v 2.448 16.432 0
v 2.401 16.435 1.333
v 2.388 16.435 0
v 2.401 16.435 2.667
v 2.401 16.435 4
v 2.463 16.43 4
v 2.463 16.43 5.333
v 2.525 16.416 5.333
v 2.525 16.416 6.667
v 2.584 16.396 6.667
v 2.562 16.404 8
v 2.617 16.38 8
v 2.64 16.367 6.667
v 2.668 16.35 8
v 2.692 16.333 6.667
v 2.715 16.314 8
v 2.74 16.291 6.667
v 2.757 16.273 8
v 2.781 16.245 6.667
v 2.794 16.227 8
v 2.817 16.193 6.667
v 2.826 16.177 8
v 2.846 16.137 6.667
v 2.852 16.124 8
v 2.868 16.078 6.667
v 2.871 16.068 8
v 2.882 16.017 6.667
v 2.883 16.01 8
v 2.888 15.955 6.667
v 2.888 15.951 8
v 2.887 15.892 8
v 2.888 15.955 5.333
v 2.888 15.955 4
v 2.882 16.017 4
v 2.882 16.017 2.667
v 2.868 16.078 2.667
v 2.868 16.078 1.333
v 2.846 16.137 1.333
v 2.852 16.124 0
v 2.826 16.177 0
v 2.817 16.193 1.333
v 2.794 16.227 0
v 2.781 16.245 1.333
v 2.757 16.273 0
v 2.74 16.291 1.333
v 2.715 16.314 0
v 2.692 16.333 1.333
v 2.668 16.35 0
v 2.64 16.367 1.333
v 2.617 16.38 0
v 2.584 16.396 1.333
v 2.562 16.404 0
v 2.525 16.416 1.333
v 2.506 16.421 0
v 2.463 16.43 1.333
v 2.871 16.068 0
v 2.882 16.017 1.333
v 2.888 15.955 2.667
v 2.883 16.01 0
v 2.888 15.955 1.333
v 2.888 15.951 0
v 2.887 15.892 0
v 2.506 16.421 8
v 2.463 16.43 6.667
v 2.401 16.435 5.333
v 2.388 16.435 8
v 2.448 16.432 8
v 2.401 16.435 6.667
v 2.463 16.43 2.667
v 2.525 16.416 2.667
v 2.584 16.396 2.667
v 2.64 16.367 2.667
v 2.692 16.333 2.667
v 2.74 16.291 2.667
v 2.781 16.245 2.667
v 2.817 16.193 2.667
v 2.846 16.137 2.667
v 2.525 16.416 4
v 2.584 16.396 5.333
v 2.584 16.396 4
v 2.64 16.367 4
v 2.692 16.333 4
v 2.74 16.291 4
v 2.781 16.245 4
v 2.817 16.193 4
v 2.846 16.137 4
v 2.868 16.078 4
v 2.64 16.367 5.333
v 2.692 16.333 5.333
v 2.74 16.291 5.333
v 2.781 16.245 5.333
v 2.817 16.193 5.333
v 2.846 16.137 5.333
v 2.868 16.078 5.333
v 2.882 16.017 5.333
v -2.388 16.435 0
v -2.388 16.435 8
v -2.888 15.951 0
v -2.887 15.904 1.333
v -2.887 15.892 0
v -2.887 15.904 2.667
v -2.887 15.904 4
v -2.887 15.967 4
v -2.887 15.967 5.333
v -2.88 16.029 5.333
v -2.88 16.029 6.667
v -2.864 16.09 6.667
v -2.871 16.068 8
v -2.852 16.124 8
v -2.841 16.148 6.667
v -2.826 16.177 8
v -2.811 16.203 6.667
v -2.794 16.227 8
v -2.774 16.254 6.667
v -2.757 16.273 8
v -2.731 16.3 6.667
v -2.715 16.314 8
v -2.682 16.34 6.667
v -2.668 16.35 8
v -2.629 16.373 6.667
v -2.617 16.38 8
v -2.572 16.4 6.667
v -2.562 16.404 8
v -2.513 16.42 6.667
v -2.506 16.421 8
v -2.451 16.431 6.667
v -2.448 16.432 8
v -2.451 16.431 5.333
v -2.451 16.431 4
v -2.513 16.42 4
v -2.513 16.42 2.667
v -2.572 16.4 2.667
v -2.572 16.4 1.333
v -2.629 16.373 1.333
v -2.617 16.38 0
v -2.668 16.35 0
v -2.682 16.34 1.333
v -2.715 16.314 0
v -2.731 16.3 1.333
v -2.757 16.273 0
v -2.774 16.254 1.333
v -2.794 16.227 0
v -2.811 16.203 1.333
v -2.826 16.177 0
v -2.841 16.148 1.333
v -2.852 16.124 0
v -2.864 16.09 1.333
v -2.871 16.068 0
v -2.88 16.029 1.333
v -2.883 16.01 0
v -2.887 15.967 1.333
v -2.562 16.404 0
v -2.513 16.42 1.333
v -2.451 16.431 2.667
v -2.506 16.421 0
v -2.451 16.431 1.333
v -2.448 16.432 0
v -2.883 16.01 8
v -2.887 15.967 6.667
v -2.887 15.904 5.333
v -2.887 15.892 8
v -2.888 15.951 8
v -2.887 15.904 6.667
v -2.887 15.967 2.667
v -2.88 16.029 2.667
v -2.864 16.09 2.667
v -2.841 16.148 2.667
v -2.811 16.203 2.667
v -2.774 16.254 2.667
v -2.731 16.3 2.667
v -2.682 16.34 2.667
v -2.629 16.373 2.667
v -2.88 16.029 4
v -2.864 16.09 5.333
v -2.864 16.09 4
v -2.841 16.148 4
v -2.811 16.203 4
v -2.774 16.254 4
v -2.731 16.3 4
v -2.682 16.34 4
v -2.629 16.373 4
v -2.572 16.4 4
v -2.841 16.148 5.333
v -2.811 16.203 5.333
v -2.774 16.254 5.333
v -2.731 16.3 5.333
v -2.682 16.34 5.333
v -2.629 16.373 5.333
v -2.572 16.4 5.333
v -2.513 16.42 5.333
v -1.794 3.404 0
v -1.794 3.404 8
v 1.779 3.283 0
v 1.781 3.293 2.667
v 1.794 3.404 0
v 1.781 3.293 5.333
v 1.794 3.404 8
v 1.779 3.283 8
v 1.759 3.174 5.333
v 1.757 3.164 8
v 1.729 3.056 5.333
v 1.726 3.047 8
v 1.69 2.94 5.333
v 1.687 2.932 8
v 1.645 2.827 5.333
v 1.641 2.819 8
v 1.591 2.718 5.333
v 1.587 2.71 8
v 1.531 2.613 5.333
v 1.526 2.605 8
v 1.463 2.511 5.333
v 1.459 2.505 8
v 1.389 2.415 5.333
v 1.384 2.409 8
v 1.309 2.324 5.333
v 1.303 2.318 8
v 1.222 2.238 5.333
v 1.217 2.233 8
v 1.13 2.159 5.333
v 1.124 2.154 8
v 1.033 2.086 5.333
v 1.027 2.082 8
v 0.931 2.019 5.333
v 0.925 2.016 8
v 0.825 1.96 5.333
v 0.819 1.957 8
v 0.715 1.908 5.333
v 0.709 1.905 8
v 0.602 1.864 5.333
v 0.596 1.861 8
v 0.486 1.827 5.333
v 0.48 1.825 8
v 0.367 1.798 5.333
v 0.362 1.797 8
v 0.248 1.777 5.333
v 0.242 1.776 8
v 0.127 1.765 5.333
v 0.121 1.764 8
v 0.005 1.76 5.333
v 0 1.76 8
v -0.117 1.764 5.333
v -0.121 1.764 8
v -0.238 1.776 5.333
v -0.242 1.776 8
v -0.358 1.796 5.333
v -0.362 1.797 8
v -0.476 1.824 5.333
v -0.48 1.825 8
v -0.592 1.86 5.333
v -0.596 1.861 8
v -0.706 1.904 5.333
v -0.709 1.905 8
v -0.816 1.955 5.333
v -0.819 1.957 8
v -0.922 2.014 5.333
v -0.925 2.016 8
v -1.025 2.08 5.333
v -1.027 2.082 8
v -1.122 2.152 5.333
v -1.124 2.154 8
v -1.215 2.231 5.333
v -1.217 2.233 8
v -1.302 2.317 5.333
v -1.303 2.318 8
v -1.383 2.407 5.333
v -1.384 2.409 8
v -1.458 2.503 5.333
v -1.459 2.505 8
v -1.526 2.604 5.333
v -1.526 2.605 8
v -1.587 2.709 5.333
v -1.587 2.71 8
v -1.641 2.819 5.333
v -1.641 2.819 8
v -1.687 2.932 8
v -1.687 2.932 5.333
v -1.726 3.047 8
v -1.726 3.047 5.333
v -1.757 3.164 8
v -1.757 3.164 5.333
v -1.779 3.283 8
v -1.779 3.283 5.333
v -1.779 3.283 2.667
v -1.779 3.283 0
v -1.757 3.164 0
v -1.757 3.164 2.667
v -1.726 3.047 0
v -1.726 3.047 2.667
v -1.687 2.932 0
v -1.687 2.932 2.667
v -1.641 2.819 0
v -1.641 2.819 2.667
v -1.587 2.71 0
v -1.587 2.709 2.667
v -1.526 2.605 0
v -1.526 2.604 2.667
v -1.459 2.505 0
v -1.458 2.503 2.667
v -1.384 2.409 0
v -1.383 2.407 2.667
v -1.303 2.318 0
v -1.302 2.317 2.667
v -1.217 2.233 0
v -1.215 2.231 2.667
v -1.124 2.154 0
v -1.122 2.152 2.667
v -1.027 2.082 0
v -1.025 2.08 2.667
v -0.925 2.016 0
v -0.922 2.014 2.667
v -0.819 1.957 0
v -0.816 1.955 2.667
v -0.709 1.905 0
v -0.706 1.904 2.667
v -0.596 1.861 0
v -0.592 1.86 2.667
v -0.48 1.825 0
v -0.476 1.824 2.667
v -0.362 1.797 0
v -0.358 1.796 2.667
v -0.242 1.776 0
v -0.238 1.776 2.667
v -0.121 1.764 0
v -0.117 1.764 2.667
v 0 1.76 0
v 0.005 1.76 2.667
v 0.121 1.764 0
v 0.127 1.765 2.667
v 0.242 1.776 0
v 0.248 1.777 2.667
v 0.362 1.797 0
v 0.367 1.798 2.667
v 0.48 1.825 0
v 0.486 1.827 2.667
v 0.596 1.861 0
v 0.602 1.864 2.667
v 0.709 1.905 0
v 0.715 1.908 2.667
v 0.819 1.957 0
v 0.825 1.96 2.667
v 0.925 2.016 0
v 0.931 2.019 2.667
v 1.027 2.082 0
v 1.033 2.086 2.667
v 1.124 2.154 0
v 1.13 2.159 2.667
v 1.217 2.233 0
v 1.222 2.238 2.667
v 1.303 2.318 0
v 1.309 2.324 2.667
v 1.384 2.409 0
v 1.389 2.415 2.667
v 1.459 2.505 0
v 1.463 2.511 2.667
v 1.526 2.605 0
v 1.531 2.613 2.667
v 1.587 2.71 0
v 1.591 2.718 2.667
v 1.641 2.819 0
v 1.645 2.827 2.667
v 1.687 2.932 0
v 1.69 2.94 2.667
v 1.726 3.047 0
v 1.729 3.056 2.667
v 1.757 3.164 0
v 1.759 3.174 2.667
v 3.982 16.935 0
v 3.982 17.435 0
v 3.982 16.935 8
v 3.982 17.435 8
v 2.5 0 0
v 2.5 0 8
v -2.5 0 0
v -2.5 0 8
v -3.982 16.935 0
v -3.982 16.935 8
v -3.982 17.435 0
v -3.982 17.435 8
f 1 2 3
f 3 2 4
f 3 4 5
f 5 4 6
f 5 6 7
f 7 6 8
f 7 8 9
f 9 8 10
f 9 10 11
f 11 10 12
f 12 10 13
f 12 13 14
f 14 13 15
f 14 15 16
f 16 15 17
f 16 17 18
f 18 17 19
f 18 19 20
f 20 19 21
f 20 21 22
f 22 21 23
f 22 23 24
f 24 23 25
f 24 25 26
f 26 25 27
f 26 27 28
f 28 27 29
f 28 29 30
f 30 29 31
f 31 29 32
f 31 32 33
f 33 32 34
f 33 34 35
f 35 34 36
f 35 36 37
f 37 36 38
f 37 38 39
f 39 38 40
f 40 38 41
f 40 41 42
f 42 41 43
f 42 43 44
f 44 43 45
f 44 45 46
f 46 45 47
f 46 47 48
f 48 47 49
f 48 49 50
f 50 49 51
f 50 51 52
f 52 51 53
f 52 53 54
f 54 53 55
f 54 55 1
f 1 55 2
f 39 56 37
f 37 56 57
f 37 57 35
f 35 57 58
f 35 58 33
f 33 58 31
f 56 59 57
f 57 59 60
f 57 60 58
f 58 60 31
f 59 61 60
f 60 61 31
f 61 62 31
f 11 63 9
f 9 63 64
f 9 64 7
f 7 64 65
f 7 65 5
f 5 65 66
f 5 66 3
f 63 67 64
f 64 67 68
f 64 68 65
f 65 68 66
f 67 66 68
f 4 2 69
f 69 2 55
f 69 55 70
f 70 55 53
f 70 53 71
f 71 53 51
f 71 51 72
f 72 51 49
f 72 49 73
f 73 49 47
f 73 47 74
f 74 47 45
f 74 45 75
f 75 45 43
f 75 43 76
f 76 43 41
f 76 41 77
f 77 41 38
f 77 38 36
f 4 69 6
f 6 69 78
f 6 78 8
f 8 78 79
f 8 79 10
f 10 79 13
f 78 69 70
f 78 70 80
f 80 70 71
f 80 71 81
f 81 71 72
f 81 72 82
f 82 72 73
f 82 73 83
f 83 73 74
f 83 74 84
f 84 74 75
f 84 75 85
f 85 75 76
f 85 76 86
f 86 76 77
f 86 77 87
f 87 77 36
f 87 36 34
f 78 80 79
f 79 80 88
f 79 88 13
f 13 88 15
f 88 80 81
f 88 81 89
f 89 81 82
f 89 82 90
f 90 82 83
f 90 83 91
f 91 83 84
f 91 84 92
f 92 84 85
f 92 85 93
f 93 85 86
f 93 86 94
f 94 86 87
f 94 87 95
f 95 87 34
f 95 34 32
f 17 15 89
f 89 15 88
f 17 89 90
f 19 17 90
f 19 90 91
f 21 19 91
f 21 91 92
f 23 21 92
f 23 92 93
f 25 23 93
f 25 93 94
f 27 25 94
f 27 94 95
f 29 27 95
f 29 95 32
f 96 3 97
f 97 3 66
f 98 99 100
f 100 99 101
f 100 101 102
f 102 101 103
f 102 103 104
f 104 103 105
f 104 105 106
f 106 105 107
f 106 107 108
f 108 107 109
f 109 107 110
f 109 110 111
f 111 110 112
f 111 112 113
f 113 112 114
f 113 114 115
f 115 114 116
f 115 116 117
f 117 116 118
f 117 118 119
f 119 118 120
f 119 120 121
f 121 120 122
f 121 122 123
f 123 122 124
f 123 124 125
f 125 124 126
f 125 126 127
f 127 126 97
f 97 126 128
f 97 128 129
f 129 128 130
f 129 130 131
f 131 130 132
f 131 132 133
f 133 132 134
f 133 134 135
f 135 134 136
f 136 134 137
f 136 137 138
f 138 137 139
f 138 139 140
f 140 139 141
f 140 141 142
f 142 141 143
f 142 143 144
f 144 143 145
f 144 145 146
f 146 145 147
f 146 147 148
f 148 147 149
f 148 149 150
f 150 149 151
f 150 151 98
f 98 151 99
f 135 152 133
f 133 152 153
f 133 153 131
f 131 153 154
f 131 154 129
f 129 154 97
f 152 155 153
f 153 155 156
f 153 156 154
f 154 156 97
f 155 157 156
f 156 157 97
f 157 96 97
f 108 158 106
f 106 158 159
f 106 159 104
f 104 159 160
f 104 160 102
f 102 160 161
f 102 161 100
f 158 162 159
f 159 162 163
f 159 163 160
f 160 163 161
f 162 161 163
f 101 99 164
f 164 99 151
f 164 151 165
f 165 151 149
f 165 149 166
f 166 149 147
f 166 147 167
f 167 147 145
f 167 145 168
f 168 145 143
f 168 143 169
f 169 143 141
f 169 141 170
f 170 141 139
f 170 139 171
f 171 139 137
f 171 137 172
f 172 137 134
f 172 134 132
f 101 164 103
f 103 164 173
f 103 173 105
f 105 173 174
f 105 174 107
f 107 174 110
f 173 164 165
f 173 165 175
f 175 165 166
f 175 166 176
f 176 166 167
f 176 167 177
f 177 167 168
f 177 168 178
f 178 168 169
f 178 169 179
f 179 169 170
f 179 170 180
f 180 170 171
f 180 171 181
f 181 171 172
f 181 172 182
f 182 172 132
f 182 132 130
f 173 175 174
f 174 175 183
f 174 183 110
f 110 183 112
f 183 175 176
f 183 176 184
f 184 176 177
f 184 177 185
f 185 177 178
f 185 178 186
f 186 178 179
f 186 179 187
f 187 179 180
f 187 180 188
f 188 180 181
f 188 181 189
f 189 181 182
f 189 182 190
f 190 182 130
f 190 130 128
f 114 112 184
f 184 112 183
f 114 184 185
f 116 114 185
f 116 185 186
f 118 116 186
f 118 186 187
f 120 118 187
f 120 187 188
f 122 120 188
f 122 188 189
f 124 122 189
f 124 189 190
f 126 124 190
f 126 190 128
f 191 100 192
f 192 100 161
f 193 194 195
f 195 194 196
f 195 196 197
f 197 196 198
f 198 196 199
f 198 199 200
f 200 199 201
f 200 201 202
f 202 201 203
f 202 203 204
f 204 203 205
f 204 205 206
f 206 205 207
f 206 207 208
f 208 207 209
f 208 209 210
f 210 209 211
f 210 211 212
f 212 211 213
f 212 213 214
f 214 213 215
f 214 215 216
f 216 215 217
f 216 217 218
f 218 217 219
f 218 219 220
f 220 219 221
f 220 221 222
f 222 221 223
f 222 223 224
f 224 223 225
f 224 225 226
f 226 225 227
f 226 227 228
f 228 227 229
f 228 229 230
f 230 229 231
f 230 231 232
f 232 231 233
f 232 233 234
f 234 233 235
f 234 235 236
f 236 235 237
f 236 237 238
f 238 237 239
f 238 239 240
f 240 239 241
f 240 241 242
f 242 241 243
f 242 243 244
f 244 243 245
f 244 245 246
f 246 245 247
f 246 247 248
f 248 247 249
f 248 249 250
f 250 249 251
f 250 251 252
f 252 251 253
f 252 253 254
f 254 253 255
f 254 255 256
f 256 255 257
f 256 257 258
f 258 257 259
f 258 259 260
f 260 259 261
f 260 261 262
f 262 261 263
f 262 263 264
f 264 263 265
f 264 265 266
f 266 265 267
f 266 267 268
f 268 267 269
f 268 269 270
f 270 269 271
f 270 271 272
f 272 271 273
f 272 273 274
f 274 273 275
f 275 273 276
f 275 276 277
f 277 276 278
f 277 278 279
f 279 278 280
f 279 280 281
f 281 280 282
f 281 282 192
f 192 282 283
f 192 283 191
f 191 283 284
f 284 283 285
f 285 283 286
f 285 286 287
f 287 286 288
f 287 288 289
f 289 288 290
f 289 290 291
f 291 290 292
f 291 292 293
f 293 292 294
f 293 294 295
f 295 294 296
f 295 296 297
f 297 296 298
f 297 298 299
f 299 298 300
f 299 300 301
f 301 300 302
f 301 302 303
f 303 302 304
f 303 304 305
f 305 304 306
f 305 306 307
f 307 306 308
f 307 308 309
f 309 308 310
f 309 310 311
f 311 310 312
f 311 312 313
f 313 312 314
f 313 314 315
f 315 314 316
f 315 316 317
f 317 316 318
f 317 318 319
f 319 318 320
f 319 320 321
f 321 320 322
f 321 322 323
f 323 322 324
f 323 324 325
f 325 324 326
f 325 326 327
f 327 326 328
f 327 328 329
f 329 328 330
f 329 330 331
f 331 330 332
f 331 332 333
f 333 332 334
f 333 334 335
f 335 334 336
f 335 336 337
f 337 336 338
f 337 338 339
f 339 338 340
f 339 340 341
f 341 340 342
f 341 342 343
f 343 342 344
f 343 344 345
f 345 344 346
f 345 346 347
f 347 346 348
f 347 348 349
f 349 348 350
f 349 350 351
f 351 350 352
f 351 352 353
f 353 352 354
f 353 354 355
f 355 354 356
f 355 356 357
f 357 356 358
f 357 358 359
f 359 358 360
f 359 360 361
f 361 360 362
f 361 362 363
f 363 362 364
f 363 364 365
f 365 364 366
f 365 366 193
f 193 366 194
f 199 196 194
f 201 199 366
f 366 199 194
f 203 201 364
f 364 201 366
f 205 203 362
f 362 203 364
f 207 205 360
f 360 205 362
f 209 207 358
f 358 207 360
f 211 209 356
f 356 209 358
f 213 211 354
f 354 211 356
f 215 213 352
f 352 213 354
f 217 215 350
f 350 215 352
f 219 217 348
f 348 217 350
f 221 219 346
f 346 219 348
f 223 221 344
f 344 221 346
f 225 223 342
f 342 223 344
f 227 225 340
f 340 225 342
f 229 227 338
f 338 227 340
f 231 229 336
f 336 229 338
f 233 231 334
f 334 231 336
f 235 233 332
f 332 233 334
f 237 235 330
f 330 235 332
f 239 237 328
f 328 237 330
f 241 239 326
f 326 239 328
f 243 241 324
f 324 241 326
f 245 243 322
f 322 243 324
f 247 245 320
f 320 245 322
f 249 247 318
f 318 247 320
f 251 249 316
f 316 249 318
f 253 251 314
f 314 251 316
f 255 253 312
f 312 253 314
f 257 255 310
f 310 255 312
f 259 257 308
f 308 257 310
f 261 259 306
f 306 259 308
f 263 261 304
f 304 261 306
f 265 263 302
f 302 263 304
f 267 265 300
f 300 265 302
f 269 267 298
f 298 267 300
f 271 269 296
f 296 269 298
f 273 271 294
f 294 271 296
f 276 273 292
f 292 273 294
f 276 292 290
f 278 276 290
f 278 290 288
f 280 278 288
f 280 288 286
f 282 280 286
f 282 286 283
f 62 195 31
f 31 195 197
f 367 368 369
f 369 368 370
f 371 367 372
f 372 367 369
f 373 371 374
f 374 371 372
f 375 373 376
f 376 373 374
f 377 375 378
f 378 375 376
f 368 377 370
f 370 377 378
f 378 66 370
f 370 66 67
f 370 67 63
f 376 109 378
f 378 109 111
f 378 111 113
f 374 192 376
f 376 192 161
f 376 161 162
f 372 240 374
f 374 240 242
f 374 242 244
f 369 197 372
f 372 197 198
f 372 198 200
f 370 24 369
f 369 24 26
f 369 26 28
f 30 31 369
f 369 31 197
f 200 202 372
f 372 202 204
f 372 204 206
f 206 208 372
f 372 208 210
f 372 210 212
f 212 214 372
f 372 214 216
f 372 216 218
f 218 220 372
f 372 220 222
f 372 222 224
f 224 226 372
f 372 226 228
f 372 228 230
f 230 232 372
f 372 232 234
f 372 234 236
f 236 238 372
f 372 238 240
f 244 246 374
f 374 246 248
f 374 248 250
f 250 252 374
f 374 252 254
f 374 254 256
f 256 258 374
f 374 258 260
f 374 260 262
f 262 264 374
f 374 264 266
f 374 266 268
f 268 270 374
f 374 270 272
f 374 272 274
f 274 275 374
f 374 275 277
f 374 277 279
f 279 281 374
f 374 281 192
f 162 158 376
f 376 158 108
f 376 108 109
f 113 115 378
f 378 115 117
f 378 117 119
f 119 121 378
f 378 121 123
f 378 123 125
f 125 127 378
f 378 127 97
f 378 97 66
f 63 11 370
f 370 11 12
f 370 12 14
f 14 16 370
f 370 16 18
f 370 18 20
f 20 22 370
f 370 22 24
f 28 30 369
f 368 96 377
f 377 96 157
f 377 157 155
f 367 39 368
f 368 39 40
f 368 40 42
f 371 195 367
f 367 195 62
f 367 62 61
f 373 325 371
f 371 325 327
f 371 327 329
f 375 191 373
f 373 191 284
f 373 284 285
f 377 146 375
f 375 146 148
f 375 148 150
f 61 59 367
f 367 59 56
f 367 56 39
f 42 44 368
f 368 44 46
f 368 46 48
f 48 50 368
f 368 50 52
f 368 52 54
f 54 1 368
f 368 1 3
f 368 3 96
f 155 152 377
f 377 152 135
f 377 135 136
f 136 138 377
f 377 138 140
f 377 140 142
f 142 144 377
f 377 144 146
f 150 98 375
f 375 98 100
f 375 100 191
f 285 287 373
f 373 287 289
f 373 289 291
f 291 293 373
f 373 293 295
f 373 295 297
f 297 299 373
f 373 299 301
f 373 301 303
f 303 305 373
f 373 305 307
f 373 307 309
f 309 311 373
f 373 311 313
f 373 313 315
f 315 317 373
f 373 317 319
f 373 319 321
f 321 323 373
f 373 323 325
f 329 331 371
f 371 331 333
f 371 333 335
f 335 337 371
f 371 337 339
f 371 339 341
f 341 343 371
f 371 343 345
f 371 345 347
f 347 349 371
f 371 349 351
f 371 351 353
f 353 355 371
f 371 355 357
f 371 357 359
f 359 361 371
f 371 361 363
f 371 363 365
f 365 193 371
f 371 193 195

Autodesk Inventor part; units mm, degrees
ref_plane "YZ Plane" through (0, 0, 0) normal (1, 0, 0) x (0, 1, 0)
ref_plane "XZ Plane" through (0, 0, 0) normal (0, 1, 0) x (-1, 0, 0)
ref_plane "XY Plane" through (0, 0, 0) normal (0, 0, 1) x (1, 0, 0)
sketch "Sketch1" plane through (0, 0, 0) normal (0, 0, 1) x (1, 0, 0)
  line L0 (0, 0) -> (0, 17.4353) construction
  line L1 (0, 17.4353) -> (-3.9816, 17.4353)
  line L2 (-3.9816, 17.4353) -> (-3.9816, 16.9353)
  line L3 (-3.9816, 16.9353) -> (-2.5, 0)
  line L4 (-2.5, 0) -> (0, 0)
  line L5 (0, 17.4353) -> (3.9816, 17.4353)
  line L6 (3.9816, 17.4353) -> (3.9816, 16.9353)
  line L7 (3.9816, 16.9353) -> (2.5, 0)
  line L8 (2.5, 0) -> (0, 0)
  line L9 (-2.3884, 16.4353) -> (1.8987, 16.4353)
  line L10 (1.8987, 16.4353) -> (2.3884, 16.4353)
  line L11 (2.8865, 15.8917) -> (1.794, 3.4039)
  line L12 (-1.794, 3.4039) -> (-2.8865, 15.8917)
  arc A0 (-2.3884, 16.4353) -> (-2.8865, 15.8917) centre (-2.3884, 15.9353) ccw
  arc A1 (2.8865, 15.8917) -> (2.3884, 16.4353) centre (2.3884, 15.9353) ccw
  arc A2 (-1.794, 3.4039) -> (1.794, 3.4039) centre (0, 3.5609) ccw
  point P0 (-2.9341, 16.4353)
  point P1 (2.9341, 16.4353)
  point P2 (0, -17.1014)
  point P3 (1.8884, 16.4353)
  dimension "d1" = 5
  dimension "d2" = 0.5
  dimension "d3" = 17
  dimension "d4" = 1
  dimension "d7" = 0.5
  dimension "d8" = 5
extrude "Extrusion1" add sketch "Sketch1" along normal blind 8
properties part number "MainBracketY"
